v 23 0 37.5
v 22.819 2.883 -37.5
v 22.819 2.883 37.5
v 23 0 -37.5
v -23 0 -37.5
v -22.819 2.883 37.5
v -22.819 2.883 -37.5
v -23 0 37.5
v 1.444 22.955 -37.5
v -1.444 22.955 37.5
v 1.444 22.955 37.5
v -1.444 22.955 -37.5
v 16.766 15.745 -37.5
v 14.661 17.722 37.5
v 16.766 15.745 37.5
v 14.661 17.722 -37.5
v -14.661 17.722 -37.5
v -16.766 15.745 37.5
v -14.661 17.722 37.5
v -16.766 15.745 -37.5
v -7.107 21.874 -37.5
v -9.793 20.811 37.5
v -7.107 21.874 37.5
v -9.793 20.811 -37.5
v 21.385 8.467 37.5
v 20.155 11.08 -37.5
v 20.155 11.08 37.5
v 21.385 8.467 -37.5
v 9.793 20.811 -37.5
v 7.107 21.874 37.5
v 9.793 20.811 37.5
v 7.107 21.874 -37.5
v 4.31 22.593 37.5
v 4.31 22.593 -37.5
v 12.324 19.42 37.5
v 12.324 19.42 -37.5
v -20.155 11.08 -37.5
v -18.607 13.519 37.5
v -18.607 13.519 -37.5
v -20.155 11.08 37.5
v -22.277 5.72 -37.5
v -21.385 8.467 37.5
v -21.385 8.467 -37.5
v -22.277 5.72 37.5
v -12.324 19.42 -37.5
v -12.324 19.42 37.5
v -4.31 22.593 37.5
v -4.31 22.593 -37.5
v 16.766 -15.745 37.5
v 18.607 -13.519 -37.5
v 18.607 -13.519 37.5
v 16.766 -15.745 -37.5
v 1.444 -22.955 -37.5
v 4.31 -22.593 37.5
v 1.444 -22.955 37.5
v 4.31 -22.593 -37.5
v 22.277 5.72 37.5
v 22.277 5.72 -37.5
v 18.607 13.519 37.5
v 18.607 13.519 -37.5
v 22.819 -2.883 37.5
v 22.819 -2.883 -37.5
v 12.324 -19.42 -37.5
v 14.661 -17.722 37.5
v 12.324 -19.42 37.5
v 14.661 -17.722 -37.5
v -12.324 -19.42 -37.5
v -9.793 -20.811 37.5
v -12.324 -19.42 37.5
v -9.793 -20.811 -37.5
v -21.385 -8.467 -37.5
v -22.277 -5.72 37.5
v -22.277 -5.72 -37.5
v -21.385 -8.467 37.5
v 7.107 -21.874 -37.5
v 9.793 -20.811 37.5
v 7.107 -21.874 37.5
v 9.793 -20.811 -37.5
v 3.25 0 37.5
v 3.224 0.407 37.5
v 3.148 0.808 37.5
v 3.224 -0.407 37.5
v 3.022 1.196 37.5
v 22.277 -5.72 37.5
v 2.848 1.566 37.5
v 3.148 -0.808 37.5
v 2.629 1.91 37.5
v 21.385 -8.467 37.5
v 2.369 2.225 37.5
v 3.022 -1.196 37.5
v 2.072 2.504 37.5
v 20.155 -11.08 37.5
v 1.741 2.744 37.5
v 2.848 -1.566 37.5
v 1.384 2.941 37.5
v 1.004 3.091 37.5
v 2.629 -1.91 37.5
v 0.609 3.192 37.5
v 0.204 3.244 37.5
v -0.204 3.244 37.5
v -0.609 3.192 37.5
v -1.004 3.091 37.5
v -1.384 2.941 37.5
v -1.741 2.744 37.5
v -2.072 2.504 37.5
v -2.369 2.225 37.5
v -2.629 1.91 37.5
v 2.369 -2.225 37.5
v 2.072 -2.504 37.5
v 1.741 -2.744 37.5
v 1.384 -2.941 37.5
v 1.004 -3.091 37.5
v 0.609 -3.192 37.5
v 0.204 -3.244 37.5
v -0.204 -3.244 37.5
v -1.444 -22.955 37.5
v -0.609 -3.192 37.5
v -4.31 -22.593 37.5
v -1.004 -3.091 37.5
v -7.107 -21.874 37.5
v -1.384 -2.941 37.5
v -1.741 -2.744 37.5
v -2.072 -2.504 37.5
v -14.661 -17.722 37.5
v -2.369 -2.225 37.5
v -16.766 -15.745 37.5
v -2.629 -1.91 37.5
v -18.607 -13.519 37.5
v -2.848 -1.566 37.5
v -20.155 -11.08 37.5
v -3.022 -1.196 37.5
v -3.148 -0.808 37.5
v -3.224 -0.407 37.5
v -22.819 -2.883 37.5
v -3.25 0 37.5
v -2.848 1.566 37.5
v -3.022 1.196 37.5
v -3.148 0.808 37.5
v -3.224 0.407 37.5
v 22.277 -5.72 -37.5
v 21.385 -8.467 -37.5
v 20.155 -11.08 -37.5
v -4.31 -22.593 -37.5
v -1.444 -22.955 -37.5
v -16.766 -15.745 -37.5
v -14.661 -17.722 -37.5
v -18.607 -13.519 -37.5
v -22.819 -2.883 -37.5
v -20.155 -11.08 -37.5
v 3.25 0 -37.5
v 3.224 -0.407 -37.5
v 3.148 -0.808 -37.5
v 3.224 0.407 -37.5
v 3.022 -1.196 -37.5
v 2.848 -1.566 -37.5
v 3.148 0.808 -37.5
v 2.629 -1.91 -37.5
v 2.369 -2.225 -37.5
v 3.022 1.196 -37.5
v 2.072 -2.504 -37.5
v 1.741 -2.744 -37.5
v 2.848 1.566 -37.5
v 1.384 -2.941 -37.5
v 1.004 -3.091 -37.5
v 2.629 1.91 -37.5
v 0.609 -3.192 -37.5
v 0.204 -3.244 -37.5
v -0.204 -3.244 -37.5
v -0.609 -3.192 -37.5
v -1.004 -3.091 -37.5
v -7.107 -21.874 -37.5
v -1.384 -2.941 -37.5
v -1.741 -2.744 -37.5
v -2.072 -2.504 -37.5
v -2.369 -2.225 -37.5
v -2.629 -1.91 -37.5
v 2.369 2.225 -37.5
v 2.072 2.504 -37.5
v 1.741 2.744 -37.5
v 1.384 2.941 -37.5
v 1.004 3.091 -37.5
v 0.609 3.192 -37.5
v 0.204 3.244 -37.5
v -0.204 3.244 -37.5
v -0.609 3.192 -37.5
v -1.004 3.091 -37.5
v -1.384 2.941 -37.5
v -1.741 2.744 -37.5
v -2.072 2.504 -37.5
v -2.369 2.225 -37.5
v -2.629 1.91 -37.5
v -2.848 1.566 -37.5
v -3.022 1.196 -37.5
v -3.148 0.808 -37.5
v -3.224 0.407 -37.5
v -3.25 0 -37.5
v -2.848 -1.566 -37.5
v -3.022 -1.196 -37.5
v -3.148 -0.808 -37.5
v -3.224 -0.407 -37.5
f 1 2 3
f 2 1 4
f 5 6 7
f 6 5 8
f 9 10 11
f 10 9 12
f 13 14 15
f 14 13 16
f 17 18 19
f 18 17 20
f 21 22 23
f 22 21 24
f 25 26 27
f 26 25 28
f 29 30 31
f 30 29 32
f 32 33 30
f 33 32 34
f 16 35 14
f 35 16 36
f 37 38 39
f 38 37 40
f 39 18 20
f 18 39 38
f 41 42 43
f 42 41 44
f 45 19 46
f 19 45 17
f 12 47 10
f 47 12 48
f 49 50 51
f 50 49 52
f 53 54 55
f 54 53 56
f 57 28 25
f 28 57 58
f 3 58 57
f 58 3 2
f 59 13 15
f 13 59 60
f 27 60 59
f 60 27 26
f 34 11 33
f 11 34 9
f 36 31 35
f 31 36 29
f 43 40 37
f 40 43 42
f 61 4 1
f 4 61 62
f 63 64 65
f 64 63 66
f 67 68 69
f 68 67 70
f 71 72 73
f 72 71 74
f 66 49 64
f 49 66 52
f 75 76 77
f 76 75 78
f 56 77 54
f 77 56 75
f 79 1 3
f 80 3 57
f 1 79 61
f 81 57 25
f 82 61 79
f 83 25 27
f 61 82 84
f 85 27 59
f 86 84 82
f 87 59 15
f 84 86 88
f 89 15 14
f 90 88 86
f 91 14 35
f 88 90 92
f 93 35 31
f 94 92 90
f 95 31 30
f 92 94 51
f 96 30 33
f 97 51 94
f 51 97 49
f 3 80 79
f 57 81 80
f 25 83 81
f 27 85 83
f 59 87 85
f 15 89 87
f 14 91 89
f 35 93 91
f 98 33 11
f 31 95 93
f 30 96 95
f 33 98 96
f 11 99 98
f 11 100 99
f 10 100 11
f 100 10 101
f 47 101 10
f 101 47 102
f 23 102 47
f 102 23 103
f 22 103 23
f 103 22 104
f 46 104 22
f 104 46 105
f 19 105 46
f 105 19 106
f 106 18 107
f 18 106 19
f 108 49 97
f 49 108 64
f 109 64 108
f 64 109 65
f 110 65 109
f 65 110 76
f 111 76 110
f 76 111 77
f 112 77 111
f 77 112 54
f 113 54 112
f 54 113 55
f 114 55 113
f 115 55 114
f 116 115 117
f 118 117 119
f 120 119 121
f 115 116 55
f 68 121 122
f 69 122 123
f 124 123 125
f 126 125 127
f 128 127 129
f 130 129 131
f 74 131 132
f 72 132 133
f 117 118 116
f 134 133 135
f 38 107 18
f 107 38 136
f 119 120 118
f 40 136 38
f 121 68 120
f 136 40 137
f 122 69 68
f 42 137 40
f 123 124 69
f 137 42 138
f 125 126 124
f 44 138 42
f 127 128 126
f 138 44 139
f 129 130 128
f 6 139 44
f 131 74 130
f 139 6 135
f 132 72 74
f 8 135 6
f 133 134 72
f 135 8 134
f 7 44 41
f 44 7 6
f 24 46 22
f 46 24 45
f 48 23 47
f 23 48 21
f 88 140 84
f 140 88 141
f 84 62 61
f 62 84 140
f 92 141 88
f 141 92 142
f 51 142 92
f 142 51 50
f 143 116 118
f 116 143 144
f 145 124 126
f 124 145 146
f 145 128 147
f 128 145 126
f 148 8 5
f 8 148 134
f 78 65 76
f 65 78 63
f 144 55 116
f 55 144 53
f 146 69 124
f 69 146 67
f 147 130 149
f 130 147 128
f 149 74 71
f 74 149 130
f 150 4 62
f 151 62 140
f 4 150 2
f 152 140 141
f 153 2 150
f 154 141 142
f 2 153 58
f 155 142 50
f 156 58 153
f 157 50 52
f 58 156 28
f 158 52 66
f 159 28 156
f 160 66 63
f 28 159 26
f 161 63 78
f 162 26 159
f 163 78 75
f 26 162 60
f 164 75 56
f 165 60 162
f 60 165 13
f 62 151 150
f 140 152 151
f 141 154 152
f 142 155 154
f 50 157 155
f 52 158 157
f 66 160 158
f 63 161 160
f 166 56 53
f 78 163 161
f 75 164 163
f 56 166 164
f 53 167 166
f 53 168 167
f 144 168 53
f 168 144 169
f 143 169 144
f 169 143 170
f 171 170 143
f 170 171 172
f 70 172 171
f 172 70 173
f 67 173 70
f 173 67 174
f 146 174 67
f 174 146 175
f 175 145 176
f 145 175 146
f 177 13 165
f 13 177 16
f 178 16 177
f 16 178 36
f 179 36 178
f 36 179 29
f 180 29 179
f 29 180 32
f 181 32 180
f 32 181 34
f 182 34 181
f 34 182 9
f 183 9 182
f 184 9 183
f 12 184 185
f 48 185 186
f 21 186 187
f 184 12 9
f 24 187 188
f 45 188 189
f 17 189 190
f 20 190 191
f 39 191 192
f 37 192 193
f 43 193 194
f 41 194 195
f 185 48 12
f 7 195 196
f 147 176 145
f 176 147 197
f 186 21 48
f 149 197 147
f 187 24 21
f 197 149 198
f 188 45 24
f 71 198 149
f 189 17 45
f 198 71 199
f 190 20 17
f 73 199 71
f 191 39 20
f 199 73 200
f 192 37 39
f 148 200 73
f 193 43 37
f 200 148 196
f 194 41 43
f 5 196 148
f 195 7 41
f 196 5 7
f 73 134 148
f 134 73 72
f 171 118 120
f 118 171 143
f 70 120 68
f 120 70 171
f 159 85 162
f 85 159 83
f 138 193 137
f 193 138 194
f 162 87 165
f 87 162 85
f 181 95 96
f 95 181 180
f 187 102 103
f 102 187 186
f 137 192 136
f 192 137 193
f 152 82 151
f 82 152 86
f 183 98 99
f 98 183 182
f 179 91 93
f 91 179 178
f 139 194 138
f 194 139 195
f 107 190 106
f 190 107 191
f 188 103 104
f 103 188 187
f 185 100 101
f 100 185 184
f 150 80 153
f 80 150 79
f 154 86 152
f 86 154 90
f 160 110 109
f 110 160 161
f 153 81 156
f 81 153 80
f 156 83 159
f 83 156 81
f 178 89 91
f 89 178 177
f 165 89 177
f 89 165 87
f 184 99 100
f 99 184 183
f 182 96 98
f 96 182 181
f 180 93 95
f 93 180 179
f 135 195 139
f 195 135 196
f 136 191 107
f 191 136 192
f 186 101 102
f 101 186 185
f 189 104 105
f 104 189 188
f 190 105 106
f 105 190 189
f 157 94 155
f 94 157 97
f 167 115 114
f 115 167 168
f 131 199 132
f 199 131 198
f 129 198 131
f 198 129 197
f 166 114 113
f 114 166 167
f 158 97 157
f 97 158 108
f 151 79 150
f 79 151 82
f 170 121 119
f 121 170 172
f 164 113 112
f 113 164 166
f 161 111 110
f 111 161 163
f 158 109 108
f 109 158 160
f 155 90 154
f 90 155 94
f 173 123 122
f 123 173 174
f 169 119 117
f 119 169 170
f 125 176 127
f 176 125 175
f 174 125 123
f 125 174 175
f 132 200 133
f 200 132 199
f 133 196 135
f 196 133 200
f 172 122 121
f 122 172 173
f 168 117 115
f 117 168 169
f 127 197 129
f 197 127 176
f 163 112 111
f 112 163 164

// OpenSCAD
$fn = 50;


difference() {
	union() {
		translate(v = [0, 0, -37.5000000000]) {
			cylinder(h = 75, r = 23.0000000000);
		}
	}
	union() {
		translate(v = [0, 0, -100.0000000000]) {
			cylinder(h = 200, r = 3.2500000000);
		}
	}
}
